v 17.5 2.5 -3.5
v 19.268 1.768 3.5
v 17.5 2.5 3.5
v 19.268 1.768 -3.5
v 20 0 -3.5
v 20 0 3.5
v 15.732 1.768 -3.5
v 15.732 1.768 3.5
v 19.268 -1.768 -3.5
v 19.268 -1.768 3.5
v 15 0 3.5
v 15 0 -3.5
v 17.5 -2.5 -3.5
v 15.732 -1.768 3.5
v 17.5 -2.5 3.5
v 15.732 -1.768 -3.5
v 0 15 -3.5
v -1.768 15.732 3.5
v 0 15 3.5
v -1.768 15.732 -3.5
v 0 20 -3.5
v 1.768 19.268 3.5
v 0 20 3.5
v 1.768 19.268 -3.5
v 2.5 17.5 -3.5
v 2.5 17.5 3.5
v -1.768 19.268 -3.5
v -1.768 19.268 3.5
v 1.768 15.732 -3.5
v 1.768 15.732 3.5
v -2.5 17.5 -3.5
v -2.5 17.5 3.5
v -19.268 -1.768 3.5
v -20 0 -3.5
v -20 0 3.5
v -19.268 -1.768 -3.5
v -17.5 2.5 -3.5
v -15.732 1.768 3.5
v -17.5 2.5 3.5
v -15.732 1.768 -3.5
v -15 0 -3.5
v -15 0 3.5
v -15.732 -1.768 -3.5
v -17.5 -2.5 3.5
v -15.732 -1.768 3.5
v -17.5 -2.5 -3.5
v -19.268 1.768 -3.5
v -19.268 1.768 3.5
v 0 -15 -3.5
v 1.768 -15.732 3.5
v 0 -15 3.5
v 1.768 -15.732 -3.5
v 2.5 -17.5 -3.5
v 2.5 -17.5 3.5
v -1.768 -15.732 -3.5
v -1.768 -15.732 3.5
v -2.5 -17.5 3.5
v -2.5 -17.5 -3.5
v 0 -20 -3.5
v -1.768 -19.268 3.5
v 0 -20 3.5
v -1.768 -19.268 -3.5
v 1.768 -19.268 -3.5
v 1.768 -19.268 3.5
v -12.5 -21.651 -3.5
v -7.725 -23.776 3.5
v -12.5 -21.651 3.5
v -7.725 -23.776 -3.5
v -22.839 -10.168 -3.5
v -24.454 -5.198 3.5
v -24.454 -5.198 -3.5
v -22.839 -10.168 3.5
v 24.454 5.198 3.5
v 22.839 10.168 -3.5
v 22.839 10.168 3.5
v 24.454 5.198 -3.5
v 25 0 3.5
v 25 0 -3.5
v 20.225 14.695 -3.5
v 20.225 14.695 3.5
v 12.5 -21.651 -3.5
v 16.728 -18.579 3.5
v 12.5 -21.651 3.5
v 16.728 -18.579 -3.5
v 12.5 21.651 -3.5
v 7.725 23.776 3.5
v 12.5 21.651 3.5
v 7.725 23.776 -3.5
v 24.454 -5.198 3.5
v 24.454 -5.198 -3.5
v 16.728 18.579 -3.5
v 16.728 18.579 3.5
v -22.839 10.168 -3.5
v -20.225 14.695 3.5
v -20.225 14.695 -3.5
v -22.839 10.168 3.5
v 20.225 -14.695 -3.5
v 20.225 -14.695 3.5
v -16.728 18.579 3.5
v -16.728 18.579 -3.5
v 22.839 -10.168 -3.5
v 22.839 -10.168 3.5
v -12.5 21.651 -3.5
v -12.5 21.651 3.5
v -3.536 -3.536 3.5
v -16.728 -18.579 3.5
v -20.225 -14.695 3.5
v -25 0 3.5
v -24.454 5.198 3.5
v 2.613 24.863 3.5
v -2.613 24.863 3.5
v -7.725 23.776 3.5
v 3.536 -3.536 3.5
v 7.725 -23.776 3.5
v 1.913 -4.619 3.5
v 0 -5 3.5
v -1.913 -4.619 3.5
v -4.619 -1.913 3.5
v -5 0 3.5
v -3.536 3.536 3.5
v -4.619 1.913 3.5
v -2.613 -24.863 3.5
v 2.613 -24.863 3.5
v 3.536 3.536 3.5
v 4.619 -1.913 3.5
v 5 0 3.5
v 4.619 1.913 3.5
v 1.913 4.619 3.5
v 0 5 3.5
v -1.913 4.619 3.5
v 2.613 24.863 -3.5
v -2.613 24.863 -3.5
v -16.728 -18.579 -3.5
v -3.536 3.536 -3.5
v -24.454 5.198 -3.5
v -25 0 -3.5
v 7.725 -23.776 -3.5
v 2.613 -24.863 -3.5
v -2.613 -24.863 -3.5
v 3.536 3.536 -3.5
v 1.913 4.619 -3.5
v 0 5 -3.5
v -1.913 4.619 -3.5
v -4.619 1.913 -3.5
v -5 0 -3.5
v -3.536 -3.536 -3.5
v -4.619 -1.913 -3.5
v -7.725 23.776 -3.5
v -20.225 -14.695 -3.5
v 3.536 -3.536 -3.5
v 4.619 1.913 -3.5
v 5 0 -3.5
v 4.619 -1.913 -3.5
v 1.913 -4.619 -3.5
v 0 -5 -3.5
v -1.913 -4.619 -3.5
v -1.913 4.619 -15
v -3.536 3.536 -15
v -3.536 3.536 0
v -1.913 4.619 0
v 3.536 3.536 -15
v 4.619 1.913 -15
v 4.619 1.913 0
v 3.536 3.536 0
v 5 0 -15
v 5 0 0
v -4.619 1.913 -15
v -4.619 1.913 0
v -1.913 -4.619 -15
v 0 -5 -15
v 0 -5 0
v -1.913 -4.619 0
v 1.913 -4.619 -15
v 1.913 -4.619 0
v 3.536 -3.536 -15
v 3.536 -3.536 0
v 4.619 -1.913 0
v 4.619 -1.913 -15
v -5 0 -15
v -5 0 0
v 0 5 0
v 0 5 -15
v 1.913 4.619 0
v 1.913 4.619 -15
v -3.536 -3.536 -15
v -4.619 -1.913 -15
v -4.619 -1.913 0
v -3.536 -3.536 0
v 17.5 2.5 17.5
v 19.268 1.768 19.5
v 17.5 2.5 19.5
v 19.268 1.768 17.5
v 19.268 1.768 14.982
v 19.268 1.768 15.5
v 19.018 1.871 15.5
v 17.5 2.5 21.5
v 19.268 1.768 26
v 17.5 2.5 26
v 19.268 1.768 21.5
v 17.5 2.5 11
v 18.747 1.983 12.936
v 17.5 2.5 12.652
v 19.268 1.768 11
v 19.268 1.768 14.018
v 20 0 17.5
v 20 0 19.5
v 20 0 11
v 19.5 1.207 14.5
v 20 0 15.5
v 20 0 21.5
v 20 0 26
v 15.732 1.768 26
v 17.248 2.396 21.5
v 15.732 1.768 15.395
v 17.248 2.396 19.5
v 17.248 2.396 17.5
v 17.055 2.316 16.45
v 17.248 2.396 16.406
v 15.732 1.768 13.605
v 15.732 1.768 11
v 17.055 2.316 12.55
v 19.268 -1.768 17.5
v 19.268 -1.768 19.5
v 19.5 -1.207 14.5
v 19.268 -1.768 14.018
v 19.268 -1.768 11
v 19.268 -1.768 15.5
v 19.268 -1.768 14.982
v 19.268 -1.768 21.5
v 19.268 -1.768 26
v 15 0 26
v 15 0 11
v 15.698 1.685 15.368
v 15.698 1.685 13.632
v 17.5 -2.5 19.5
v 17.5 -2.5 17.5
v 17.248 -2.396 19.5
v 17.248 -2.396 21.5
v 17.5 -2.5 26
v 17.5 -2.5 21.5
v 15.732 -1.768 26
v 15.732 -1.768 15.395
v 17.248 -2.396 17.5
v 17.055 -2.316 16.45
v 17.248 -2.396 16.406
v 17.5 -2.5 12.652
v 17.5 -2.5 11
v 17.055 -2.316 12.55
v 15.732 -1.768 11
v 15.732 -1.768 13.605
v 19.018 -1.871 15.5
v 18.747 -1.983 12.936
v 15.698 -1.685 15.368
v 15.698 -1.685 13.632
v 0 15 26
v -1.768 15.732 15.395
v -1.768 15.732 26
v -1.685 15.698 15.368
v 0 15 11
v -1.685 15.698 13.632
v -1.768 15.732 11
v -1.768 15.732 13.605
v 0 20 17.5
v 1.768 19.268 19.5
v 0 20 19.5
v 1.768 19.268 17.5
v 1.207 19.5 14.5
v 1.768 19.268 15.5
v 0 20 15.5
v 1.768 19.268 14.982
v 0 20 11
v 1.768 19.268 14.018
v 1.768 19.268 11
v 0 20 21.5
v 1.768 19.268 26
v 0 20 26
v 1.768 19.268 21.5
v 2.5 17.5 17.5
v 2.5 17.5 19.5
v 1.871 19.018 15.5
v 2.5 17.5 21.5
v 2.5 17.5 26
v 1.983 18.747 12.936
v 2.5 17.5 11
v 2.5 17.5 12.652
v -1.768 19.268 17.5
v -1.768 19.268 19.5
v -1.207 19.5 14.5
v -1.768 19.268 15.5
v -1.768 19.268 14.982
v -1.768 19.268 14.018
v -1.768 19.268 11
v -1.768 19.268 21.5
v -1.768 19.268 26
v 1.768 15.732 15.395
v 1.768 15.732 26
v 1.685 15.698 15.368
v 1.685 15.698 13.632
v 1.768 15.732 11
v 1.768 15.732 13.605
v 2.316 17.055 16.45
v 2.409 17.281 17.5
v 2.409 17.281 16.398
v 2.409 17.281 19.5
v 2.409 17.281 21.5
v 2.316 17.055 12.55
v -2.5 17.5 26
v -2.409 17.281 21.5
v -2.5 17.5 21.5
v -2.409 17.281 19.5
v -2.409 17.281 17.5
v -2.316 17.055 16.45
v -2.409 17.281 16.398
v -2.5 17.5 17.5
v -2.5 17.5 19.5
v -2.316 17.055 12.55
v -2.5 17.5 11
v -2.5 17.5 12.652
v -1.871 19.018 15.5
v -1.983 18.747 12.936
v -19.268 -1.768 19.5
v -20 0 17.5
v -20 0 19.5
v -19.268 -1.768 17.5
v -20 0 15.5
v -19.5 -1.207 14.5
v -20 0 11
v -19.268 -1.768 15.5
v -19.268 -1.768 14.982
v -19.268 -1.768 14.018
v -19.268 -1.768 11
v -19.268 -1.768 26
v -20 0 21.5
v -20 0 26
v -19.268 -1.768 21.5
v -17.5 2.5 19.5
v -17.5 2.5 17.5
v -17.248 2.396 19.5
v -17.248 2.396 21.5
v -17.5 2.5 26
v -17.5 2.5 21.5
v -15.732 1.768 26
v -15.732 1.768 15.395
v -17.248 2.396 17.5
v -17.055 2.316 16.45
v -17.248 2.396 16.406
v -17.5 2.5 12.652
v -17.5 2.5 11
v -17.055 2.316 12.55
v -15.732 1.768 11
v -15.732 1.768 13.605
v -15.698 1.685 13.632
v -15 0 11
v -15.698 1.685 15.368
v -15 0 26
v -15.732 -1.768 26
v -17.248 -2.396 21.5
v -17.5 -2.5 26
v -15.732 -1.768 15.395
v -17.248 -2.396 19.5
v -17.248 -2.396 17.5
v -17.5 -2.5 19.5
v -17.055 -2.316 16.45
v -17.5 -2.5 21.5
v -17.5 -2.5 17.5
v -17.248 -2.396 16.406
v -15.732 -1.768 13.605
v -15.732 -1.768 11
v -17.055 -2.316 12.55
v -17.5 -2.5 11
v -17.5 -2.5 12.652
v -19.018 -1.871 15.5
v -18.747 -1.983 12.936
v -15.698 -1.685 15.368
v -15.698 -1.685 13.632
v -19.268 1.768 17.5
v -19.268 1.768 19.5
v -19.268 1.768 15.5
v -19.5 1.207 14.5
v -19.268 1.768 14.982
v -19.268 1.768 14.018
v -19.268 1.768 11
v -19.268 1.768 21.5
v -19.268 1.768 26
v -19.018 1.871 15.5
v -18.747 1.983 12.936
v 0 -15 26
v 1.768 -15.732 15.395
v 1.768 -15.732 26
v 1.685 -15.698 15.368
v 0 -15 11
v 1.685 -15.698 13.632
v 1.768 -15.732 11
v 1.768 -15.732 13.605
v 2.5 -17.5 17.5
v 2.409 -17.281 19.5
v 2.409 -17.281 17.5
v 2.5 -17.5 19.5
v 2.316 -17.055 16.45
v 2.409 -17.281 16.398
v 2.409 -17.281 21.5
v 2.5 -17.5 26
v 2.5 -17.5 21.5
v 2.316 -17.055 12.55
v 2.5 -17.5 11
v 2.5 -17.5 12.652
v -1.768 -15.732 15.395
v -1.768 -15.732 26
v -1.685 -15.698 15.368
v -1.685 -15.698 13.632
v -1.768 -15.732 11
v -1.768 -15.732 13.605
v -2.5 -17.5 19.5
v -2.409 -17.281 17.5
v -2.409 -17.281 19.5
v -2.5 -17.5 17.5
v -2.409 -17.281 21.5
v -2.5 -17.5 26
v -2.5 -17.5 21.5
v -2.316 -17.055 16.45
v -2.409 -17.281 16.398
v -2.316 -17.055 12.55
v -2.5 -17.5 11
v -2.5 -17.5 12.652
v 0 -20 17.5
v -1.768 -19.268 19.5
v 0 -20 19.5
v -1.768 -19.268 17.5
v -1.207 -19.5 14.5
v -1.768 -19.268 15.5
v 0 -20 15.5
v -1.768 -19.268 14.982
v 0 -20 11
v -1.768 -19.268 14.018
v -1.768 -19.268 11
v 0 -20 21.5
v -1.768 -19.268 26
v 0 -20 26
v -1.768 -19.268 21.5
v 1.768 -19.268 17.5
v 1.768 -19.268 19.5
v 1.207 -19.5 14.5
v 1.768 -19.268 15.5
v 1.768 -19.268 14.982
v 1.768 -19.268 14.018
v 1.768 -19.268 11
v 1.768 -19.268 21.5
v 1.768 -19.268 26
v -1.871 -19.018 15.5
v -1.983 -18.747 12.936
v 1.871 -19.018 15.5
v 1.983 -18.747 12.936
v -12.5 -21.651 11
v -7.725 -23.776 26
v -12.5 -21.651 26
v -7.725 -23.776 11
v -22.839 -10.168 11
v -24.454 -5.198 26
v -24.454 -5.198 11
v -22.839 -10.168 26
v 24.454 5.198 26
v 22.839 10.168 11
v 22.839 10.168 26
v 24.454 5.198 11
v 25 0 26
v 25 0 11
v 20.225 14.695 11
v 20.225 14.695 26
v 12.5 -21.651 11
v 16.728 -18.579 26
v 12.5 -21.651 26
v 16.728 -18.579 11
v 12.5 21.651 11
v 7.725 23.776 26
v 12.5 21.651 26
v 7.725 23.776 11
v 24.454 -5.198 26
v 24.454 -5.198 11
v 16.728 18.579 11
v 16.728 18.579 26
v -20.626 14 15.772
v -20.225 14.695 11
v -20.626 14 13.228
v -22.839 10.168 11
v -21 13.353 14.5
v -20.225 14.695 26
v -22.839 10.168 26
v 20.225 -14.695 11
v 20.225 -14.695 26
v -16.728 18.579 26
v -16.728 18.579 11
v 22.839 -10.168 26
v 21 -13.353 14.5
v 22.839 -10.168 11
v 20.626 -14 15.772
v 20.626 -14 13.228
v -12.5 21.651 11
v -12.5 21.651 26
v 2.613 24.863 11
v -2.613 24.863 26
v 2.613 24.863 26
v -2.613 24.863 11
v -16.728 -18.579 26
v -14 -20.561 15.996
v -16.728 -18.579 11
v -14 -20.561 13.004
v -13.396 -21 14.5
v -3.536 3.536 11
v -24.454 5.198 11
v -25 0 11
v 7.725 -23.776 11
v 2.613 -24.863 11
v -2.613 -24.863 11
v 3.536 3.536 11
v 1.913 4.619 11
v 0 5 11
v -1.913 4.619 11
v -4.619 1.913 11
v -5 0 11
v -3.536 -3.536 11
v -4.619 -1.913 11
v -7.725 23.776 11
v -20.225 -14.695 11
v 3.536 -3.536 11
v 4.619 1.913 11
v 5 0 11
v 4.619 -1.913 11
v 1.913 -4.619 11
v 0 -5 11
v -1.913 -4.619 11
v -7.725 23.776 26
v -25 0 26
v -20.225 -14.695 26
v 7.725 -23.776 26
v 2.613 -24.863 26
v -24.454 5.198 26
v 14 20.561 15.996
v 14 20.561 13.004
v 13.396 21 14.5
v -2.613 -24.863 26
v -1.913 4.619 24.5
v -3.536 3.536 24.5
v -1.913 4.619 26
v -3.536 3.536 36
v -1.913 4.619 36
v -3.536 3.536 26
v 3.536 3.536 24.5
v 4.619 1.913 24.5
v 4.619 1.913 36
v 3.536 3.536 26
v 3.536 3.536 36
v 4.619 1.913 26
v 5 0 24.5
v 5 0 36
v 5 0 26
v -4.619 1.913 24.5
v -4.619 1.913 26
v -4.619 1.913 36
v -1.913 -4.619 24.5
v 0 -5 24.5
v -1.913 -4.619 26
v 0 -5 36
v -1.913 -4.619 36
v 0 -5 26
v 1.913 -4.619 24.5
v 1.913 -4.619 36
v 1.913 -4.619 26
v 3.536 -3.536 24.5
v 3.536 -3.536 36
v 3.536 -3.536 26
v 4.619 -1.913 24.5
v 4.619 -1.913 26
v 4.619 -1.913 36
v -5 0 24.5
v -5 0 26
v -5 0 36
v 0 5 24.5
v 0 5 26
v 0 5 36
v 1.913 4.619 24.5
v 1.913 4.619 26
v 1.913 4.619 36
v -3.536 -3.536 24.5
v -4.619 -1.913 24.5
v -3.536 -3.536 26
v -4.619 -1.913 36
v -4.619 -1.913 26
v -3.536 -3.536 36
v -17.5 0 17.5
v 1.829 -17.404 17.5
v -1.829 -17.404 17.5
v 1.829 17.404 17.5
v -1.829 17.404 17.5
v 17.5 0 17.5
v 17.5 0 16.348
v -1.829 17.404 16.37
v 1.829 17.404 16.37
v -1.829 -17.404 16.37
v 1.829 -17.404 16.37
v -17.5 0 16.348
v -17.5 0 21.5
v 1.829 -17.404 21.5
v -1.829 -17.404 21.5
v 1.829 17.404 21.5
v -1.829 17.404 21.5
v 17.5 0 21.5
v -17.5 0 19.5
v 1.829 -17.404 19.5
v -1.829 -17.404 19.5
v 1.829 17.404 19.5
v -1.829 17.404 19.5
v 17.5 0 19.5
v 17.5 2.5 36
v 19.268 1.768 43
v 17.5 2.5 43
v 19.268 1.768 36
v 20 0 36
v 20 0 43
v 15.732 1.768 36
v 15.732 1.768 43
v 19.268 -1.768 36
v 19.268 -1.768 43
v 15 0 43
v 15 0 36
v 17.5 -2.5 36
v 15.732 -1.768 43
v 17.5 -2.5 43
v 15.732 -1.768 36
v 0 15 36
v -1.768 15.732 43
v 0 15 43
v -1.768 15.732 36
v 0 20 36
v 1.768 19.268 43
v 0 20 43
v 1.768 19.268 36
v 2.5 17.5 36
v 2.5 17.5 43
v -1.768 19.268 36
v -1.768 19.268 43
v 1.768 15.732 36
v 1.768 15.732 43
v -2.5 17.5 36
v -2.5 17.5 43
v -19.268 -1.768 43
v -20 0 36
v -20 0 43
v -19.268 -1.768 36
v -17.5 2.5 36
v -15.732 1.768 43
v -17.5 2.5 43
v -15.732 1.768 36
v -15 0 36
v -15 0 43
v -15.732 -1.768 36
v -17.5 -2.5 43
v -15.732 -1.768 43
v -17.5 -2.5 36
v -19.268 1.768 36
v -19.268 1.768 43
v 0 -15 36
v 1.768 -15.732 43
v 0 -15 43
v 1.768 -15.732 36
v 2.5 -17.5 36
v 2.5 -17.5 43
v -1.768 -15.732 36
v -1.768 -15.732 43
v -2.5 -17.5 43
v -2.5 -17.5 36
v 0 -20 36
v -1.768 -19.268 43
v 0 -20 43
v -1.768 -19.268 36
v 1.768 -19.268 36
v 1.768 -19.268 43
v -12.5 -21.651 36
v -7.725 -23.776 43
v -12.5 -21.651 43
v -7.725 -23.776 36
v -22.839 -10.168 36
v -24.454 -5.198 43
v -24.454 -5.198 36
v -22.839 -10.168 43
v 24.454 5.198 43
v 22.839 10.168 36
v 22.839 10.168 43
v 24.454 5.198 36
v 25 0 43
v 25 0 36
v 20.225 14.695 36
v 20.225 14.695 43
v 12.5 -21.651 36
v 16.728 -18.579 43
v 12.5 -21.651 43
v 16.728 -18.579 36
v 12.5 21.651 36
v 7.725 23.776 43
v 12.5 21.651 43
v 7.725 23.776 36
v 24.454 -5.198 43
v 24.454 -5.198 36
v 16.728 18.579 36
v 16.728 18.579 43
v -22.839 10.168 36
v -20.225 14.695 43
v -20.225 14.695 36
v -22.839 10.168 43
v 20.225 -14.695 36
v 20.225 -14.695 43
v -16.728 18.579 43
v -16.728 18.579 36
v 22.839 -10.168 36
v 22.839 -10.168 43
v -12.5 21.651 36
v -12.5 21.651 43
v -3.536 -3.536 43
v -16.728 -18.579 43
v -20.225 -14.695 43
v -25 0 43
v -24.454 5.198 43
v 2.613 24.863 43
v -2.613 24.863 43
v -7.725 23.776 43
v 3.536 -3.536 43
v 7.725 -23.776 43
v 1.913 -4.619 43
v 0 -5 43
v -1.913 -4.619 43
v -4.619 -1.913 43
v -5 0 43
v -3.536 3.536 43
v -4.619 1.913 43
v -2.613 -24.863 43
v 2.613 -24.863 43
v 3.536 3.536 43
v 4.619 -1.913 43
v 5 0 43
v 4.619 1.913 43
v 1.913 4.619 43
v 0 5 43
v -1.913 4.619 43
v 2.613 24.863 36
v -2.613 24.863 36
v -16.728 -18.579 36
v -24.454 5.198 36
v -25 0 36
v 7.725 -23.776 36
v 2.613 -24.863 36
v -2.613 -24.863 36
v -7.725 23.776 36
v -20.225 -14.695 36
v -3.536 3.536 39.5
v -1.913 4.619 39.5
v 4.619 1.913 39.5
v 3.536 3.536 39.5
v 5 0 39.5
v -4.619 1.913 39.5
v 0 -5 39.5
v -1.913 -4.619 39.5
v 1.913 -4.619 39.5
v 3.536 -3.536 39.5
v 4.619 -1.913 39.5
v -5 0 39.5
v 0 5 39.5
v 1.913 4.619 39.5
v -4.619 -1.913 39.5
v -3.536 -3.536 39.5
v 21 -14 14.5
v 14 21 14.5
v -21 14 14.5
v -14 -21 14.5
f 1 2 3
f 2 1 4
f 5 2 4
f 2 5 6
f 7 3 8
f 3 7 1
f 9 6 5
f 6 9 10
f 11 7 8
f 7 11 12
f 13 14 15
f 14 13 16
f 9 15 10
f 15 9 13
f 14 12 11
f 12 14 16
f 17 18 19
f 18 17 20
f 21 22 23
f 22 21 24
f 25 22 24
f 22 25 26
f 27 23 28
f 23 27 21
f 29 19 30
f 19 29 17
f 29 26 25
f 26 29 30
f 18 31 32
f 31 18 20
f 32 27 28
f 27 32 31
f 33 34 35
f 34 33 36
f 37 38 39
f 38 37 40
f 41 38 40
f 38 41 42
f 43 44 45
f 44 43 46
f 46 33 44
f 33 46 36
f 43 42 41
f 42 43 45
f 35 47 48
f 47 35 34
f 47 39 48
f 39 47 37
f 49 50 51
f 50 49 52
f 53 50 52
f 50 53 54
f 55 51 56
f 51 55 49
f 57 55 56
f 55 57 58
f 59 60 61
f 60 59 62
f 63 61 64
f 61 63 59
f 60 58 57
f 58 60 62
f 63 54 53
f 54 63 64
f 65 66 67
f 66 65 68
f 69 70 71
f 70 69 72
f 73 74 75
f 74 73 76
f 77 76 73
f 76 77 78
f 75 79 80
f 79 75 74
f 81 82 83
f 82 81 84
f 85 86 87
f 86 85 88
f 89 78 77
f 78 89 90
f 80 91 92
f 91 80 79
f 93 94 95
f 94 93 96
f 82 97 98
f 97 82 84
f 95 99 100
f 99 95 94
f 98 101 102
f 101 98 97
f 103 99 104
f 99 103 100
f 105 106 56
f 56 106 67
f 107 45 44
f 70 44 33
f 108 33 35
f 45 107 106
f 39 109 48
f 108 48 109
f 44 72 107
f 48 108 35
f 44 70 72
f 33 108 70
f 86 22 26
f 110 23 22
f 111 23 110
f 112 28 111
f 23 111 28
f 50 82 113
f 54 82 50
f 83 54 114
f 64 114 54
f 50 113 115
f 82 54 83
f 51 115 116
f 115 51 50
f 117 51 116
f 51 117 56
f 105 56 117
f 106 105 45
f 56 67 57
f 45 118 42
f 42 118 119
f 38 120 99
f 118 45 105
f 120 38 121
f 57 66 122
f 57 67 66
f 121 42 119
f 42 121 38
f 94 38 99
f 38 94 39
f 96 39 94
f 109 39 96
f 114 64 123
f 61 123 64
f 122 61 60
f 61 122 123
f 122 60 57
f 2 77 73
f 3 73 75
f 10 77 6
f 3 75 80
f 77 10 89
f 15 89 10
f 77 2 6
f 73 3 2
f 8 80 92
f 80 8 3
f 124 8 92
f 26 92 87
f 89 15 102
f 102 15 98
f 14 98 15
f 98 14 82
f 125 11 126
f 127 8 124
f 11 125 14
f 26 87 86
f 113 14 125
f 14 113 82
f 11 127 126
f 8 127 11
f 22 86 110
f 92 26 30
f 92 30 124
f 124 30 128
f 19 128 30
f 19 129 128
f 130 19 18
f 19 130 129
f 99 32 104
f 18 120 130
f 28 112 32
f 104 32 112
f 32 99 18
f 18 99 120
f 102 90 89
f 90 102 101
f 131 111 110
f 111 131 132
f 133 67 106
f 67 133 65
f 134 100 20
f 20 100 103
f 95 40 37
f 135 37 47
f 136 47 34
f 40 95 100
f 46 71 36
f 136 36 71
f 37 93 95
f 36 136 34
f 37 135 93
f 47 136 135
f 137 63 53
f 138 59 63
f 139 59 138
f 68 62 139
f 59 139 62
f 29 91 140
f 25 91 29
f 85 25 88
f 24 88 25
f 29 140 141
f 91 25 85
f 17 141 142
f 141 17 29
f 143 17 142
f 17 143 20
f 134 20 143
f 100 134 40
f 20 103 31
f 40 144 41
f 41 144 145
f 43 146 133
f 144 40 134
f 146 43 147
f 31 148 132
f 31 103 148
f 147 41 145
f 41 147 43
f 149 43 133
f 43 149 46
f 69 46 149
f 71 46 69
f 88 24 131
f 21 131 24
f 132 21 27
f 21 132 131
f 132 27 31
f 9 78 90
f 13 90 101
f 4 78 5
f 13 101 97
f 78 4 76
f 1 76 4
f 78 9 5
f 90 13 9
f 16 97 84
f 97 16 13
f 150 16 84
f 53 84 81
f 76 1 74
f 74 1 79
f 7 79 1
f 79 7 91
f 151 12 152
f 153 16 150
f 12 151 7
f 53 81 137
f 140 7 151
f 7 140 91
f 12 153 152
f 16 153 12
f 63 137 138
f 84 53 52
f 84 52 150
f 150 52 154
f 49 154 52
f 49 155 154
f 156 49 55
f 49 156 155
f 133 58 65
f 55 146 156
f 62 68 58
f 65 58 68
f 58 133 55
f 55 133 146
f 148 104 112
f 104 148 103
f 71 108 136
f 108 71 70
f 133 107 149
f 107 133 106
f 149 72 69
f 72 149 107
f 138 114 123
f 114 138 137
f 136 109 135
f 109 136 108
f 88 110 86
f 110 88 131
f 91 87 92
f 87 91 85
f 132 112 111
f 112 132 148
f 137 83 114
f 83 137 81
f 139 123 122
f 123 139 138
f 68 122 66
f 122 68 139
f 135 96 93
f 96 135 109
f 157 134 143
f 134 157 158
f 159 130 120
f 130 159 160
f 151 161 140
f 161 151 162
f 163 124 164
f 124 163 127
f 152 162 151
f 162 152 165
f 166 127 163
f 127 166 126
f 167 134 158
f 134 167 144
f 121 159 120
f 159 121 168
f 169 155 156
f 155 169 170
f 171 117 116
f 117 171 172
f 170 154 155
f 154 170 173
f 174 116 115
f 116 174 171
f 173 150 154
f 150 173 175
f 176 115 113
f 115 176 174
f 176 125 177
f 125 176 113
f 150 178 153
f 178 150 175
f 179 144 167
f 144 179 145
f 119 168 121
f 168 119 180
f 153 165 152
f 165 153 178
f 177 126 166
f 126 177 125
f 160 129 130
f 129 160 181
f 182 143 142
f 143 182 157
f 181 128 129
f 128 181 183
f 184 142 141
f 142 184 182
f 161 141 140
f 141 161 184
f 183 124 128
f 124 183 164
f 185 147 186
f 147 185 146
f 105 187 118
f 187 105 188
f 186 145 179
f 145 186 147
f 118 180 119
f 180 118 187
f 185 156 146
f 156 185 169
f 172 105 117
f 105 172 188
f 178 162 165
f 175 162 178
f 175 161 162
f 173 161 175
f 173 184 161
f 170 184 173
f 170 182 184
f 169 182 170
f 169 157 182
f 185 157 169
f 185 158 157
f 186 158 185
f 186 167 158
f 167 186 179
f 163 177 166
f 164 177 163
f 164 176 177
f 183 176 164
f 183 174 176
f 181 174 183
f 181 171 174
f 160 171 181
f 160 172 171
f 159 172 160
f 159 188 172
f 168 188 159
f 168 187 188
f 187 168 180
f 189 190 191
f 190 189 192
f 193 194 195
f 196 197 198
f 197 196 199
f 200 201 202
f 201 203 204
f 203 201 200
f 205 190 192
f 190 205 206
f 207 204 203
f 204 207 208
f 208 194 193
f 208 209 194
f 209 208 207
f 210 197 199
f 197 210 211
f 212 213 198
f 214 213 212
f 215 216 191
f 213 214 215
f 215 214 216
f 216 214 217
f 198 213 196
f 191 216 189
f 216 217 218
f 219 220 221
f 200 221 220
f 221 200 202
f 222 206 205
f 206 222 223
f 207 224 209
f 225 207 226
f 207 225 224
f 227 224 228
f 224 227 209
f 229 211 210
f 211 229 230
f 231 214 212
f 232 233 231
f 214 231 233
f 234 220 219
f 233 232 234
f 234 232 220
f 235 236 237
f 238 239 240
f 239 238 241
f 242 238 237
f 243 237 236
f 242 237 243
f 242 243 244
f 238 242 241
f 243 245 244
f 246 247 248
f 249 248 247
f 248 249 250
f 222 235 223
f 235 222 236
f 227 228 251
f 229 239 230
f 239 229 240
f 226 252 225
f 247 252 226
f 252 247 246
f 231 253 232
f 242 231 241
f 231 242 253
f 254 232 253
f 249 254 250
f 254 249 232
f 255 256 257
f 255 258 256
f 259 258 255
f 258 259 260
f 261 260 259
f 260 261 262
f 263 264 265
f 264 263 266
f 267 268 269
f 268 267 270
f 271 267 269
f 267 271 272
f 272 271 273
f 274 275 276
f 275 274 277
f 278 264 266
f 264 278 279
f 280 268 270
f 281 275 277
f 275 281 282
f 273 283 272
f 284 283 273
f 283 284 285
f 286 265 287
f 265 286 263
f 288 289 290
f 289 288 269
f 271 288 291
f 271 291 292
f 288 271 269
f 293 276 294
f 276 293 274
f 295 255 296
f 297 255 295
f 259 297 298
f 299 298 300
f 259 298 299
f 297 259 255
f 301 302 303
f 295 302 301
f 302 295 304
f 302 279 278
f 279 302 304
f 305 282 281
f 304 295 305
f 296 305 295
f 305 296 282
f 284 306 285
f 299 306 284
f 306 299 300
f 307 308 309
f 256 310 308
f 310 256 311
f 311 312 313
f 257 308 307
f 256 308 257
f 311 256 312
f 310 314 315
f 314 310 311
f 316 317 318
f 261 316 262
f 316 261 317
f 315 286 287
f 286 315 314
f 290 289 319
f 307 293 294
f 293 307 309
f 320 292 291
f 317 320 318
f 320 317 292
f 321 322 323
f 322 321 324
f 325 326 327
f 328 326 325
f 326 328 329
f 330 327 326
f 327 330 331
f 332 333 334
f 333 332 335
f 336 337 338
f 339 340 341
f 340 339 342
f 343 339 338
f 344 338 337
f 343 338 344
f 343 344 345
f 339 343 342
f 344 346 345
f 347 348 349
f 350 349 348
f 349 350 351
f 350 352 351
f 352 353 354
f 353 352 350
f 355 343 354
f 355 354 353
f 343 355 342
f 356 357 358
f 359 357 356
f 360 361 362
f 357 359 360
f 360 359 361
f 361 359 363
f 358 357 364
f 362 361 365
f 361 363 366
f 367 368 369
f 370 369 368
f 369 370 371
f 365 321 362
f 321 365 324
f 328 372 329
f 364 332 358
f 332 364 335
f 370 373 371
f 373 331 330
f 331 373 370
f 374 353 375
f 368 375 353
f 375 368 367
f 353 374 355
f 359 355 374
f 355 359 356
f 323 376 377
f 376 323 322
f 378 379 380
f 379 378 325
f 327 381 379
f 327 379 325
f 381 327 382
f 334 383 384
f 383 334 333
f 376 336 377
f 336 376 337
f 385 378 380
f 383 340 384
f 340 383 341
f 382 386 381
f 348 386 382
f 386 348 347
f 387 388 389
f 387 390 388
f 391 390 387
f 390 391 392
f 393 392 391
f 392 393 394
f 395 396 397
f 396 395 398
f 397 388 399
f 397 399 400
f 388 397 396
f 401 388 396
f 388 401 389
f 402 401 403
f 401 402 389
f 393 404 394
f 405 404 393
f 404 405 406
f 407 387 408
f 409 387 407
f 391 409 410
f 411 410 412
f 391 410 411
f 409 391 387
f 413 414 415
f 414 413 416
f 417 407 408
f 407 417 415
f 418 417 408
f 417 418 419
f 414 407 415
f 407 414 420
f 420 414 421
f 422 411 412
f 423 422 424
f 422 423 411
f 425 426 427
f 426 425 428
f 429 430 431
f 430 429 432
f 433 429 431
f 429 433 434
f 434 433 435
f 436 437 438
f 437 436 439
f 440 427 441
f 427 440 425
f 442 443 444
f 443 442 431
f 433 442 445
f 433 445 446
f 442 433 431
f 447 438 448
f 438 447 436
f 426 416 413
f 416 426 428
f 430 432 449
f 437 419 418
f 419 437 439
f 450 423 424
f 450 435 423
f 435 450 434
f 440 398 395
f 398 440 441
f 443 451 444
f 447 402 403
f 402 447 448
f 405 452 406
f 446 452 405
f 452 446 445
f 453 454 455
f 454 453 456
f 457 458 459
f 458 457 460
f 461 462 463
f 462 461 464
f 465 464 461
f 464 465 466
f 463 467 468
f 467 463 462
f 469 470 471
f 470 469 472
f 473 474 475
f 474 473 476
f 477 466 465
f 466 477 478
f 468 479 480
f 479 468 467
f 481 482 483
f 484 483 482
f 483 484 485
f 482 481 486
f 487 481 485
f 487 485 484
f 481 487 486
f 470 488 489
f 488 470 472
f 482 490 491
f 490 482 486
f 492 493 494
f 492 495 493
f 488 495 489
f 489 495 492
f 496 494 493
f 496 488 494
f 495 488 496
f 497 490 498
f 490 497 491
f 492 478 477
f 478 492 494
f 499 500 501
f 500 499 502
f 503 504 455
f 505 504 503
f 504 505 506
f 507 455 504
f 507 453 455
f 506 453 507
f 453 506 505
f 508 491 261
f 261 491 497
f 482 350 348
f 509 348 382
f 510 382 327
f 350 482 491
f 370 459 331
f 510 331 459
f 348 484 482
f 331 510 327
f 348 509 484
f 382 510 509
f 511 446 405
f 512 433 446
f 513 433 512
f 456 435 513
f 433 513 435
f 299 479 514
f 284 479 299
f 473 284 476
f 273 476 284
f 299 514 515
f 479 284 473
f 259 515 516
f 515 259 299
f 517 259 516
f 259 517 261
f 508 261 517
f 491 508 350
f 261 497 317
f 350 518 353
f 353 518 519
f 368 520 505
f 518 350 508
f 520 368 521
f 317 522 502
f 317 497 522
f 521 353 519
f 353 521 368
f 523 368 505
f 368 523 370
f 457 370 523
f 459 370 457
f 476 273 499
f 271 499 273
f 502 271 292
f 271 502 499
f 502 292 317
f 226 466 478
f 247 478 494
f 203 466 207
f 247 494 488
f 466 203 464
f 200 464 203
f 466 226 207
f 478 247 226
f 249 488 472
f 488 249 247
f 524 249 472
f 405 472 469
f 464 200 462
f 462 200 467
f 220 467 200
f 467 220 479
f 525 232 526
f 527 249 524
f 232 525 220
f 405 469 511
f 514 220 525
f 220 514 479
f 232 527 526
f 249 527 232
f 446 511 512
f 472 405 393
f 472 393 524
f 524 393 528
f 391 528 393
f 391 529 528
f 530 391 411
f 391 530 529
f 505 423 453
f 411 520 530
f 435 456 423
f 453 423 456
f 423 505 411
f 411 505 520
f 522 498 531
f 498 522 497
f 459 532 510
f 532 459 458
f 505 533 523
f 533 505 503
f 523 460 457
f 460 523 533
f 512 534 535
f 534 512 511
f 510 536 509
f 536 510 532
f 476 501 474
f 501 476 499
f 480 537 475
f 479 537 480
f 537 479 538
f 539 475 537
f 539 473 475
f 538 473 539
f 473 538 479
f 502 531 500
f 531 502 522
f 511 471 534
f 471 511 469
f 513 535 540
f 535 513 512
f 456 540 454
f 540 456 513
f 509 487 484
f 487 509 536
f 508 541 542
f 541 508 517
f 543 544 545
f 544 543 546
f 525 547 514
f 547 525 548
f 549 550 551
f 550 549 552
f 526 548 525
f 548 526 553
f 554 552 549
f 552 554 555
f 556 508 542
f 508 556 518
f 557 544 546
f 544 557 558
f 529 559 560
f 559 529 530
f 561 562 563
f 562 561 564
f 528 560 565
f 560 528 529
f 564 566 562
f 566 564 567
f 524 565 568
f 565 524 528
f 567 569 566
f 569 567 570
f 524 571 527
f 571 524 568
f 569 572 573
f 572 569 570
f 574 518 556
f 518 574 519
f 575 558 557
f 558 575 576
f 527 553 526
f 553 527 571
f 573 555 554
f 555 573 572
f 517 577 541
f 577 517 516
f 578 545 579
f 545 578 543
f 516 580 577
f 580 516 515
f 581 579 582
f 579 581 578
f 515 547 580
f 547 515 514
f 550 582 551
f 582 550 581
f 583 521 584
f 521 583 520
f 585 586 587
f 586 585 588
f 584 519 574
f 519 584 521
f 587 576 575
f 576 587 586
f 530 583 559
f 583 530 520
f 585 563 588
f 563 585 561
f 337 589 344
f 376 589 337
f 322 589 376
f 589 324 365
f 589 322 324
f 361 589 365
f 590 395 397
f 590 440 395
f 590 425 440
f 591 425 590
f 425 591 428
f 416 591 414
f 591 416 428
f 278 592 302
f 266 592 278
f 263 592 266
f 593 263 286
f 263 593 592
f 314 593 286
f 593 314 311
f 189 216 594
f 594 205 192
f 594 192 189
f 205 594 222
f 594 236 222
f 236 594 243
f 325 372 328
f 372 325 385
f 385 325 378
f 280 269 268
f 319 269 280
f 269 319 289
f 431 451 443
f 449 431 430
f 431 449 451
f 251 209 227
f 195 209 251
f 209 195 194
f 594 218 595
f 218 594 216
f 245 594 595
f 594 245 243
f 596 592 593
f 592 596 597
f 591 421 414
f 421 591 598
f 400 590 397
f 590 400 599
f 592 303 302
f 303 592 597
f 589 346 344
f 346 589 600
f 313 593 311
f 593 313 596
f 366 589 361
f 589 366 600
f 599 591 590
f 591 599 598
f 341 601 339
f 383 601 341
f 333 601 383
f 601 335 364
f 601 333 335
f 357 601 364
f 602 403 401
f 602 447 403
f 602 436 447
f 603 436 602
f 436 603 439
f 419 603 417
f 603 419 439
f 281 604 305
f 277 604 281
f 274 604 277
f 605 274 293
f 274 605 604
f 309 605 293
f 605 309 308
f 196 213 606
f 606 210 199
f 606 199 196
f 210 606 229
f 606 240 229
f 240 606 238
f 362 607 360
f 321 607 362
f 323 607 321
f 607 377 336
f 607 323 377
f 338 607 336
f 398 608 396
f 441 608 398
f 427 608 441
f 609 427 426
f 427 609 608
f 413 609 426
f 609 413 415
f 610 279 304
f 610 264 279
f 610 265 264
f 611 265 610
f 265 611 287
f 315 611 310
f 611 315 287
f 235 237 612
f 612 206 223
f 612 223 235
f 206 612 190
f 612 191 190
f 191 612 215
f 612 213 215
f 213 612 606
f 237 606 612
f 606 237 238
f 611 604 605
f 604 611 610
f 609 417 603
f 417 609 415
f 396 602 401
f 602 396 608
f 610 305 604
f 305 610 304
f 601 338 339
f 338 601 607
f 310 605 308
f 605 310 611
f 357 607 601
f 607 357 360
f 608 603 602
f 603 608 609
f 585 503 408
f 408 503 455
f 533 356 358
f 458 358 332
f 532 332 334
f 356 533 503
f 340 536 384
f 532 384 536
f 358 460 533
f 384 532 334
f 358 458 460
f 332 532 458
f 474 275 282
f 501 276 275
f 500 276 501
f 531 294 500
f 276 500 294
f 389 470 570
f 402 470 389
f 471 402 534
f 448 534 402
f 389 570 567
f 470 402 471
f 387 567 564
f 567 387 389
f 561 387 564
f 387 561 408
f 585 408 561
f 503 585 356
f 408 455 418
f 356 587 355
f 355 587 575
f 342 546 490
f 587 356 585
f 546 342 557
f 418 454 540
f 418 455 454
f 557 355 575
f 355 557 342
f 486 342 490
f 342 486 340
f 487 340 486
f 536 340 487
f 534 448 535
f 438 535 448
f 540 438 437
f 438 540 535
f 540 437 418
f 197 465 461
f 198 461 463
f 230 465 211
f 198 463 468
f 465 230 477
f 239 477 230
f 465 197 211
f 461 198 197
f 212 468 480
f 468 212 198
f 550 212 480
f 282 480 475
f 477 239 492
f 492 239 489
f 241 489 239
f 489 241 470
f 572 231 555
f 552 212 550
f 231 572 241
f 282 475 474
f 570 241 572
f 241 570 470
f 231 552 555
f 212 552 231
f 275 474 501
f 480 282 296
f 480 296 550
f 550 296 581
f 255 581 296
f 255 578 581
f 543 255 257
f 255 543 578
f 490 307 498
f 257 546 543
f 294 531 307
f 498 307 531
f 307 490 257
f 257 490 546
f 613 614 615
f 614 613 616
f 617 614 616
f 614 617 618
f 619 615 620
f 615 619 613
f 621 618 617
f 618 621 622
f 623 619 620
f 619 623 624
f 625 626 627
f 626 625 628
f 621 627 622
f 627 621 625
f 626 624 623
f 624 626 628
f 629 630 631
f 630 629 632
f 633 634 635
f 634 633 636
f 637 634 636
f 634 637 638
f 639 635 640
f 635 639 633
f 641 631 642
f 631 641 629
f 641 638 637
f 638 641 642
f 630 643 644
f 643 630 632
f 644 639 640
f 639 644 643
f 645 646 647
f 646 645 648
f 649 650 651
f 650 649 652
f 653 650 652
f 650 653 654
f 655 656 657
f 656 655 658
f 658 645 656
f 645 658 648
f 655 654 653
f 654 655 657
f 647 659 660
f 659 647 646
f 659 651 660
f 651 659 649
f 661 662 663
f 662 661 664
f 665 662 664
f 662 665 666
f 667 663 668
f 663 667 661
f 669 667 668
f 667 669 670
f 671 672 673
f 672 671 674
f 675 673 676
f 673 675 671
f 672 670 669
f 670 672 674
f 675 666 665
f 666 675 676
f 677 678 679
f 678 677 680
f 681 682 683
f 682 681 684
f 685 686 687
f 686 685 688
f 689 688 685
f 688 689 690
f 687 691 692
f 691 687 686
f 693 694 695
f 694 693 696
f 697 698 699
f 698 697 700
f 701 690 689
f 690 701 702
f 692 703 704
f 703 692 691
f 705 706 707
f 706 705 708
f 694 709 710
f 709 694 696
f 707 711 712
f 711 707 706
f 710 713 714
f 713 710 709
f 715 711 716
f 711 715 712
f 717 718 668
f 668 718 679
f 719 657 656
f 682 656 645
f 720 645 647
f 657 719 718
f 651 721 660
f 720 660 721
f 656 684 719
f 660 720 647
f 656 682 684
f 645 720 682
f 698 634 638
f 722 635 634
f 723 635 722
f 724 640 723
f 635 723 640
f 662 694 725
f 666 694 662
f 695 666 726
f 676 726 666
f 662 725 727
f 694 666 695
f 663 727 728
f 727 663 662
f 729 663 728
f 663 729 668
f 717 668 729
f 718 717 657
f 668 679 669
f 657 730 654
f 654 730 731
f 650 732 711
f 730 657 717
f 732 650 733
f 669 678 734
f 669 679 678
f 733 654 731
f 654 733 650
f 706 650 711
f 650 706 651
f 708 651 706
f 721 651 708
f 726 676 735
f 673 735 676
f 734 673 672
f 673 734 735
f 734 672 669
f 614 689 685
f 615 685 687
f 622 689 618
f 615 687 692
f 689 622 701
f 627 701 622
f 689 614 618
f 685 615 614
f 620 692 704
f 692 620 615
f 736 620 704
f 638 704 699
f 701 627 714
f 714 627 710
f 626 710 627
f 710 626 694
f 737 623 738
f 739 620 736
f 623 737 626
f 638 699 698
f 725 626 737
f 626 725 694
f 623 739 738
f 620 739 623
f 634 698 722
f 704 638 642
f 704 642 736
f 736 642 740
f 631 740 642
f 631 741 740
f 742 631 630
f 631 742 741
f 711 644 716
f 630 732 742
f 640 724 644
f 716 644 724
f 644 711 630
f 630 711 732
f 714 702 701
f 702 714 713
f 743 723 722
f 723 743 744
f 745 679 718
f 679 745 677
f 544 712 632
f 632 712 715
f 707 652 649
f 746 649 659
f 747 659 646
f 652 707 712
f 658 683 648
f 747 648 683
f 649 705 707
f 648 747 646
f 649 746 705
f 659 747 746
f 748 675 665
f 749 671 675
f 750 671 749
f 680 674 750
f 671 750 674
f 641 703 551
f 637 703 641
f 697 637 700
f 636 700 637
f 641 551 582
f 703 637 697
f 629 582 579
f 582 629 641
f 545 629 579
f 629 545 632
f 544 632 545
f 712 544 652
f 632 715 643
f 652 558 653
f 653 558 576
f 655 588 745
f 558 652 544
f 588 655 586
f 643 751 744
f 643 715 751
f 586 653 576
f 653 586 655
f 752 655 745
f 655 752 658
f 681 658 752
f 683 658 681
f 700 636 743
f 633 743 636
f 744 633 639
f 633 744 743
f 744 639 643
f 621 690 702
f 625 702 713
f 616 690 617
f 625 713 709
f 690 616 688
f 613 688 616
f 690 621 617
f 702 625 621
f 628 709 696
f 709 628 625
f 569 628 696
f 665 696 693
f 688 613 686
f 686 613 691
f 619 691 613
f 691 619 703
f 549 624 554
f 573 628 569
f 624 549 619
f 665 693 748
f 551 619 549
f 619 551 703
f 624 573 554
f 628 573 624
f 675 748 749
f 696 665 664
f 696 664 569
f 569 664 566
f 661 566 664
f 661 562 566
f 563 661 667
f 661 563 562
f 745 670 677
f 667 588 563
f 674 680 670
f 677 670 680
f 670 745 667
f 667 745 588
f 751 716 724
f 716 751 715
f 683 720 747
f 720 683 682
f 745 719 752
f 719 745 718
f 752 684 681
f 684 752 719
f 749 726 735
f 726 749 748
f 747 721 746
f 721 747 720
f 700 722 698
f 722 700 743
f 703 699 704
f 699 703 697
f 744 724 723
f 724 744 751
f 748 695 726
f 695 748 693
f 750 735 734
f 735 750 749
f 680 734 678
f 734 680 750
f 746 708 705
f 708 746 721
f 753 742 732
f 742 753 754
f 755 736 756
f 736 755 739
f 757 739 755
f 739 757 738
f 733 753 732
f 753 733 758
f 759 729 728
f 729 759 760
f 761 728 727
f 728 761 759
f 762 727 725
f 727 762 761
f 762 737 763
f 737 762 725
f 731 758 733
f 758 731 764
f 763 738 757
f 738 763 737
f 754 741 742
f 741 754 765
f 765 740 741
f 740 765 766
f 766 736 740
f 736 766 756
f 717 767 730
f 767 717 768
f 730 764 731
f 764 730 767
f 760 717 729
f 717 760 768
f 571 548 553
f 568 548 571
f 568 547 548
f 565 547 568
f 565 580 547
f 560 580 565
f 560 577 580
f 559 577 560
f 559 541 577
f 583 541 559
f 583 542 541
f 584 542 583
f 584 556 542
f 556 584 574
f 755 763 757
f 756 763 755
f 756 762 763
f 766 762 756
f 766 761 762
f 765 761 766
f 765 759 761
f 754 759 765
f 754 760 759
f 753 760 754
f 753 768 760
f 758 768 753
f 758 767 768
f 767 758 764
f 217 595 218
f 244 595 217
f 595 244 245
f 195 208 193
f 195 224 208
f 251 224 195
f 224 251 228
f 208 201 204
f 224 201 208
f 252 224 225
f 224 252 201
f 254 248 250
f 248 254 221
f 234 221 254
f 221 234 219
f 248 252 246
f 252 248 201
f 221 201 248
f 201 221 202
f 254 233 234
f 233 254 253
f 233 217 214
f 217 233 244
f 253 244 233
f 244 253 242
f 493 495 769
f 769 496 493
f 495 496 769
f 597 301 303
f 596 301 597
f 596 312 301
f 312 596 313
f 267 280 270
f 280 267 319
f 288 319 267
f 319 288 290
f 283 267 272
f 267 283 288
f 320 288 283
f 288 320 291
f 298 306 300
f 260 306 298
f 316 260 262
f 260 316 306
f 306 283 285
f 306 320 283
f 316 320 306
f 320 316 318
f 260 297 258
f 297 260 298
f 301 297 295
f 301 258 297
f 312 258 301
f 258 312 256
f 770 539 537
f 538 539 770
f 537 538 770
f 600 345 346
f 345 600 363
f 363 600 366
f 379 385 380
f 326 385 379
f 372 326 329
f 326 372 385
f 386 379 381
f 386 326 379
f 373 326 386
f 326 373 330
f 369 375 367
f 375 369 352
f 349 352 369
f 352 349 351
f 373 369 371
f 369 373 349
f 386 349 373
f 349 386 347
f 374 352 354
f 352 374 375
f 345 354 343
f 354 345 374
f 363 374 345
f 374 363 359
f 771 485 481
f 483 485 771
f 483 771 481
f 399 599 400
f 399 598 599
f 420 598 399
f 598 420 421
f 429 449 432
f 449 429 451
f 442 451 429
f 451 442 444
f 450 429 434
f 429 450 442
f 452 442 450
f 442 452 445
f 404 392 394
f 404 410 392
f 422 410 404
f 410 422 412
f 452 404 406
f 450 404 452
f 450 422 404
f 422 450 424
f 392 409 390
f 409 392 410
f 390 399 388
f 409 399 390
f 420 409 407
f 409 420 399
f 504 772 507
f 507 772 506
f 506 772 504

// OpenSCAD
// Parameters
shaft_diameter = 10;
flange_diameter = 50;
flange_thickness = 7; // Increased to make the flange more prominent
spacer_thickness = 2; // Reduced to make the spacer rings thinner
bolt_hole_diameter = 5;
bolt_diameter = 4;
bolt_length = 25; // Shortened to bring components closer together
nut_size = 7; // Reduced to make the nuts smaller
nut_thickness = 3; // Reduced to make the nuts less protruding
num_bolts = 4;
bolt_circle_diameter = 35;
shaft_length = 15; // Shortened to adjust the cylindrical section

// Function to create a flange
module flange() {
    difference() {
        cylinder(d=flange_diameter, h=flange_thickness, center=true);
        cylinder(d=shaft_diameter, h=flange_thickness + 2, center=true);
        for (i = [0:num_bolts-1]) {
            angle = i * 360 / num_bolts;
            translate([bolt_circle_diameter/2 * cos(angle), bolt_circle_diameter/2 * sin(angle), 0])
                cylinder(d=bolt_hole_diameter, h=flange_thickness + 2, center=true);
        }
    }
}

// Function to create a spacer ring
module spacer_ring() {
    difference() {
        cylinder(d=flange_diameter, h=spacer_thickness, center=true);
        cylinder(d=bolt_circle_diameter, h=spacer_thickness + 2, center=true);
    }
}

// Function to create a bolt
module bolt() {
    union() {
        cylinder(d=bolt_diameter, h=bolt_length, center=true);
        translate([0, 0, bolt_length/2])
            cylinder(d=nut_size, h=nut_thickness, center=true);
    }
}

// Function to create the input/output craft
module craft() {
    union() {
        cylinder(d=shaft_diameter, h=shaft_length, center=true);
        translate([0, 0, shaft_length/2])
            flange();
    }
}

// Assemble the coupling
module coupling() {
    translate([0, 0, -shaft_length/2]) craft();
    translate([0, 0, shaft_length/2 + flange_thickness]) flange();
    translate([0, 0, shaft_length/2 + flange_thickness + spacer_thickness]) spacer_ring();
    translate([0, 0, shaft_length/2 + flange_thickness + 2 * spacer_thickness]) flange();
    translate([0, 0, shaft_length/2 + flange_thickness + 3 * spacer_thickness]) spacer_ring();
    translate([0, 0, shaft_length/2 + flange_thickness + 4 * spacer_thickness]) flange();
    translate([0, 0, shaft_length/2 + flange_thickness + 5 * spacer_thickness + shaft_length/2]) craft();
    
    // Bolts
    for (i = [0:num_bolts-1]) {
        angle = i * 360 / num_bolts;
        translate([bolt_circle_diameter/2 * cos(angle), bolt_circle_diameter/2 * sin(angle), shaft_length/2 + flange_thickness])
            rotate([90, 0, angle]) bolt();
    }
}

// Render the coupling
coupling();
